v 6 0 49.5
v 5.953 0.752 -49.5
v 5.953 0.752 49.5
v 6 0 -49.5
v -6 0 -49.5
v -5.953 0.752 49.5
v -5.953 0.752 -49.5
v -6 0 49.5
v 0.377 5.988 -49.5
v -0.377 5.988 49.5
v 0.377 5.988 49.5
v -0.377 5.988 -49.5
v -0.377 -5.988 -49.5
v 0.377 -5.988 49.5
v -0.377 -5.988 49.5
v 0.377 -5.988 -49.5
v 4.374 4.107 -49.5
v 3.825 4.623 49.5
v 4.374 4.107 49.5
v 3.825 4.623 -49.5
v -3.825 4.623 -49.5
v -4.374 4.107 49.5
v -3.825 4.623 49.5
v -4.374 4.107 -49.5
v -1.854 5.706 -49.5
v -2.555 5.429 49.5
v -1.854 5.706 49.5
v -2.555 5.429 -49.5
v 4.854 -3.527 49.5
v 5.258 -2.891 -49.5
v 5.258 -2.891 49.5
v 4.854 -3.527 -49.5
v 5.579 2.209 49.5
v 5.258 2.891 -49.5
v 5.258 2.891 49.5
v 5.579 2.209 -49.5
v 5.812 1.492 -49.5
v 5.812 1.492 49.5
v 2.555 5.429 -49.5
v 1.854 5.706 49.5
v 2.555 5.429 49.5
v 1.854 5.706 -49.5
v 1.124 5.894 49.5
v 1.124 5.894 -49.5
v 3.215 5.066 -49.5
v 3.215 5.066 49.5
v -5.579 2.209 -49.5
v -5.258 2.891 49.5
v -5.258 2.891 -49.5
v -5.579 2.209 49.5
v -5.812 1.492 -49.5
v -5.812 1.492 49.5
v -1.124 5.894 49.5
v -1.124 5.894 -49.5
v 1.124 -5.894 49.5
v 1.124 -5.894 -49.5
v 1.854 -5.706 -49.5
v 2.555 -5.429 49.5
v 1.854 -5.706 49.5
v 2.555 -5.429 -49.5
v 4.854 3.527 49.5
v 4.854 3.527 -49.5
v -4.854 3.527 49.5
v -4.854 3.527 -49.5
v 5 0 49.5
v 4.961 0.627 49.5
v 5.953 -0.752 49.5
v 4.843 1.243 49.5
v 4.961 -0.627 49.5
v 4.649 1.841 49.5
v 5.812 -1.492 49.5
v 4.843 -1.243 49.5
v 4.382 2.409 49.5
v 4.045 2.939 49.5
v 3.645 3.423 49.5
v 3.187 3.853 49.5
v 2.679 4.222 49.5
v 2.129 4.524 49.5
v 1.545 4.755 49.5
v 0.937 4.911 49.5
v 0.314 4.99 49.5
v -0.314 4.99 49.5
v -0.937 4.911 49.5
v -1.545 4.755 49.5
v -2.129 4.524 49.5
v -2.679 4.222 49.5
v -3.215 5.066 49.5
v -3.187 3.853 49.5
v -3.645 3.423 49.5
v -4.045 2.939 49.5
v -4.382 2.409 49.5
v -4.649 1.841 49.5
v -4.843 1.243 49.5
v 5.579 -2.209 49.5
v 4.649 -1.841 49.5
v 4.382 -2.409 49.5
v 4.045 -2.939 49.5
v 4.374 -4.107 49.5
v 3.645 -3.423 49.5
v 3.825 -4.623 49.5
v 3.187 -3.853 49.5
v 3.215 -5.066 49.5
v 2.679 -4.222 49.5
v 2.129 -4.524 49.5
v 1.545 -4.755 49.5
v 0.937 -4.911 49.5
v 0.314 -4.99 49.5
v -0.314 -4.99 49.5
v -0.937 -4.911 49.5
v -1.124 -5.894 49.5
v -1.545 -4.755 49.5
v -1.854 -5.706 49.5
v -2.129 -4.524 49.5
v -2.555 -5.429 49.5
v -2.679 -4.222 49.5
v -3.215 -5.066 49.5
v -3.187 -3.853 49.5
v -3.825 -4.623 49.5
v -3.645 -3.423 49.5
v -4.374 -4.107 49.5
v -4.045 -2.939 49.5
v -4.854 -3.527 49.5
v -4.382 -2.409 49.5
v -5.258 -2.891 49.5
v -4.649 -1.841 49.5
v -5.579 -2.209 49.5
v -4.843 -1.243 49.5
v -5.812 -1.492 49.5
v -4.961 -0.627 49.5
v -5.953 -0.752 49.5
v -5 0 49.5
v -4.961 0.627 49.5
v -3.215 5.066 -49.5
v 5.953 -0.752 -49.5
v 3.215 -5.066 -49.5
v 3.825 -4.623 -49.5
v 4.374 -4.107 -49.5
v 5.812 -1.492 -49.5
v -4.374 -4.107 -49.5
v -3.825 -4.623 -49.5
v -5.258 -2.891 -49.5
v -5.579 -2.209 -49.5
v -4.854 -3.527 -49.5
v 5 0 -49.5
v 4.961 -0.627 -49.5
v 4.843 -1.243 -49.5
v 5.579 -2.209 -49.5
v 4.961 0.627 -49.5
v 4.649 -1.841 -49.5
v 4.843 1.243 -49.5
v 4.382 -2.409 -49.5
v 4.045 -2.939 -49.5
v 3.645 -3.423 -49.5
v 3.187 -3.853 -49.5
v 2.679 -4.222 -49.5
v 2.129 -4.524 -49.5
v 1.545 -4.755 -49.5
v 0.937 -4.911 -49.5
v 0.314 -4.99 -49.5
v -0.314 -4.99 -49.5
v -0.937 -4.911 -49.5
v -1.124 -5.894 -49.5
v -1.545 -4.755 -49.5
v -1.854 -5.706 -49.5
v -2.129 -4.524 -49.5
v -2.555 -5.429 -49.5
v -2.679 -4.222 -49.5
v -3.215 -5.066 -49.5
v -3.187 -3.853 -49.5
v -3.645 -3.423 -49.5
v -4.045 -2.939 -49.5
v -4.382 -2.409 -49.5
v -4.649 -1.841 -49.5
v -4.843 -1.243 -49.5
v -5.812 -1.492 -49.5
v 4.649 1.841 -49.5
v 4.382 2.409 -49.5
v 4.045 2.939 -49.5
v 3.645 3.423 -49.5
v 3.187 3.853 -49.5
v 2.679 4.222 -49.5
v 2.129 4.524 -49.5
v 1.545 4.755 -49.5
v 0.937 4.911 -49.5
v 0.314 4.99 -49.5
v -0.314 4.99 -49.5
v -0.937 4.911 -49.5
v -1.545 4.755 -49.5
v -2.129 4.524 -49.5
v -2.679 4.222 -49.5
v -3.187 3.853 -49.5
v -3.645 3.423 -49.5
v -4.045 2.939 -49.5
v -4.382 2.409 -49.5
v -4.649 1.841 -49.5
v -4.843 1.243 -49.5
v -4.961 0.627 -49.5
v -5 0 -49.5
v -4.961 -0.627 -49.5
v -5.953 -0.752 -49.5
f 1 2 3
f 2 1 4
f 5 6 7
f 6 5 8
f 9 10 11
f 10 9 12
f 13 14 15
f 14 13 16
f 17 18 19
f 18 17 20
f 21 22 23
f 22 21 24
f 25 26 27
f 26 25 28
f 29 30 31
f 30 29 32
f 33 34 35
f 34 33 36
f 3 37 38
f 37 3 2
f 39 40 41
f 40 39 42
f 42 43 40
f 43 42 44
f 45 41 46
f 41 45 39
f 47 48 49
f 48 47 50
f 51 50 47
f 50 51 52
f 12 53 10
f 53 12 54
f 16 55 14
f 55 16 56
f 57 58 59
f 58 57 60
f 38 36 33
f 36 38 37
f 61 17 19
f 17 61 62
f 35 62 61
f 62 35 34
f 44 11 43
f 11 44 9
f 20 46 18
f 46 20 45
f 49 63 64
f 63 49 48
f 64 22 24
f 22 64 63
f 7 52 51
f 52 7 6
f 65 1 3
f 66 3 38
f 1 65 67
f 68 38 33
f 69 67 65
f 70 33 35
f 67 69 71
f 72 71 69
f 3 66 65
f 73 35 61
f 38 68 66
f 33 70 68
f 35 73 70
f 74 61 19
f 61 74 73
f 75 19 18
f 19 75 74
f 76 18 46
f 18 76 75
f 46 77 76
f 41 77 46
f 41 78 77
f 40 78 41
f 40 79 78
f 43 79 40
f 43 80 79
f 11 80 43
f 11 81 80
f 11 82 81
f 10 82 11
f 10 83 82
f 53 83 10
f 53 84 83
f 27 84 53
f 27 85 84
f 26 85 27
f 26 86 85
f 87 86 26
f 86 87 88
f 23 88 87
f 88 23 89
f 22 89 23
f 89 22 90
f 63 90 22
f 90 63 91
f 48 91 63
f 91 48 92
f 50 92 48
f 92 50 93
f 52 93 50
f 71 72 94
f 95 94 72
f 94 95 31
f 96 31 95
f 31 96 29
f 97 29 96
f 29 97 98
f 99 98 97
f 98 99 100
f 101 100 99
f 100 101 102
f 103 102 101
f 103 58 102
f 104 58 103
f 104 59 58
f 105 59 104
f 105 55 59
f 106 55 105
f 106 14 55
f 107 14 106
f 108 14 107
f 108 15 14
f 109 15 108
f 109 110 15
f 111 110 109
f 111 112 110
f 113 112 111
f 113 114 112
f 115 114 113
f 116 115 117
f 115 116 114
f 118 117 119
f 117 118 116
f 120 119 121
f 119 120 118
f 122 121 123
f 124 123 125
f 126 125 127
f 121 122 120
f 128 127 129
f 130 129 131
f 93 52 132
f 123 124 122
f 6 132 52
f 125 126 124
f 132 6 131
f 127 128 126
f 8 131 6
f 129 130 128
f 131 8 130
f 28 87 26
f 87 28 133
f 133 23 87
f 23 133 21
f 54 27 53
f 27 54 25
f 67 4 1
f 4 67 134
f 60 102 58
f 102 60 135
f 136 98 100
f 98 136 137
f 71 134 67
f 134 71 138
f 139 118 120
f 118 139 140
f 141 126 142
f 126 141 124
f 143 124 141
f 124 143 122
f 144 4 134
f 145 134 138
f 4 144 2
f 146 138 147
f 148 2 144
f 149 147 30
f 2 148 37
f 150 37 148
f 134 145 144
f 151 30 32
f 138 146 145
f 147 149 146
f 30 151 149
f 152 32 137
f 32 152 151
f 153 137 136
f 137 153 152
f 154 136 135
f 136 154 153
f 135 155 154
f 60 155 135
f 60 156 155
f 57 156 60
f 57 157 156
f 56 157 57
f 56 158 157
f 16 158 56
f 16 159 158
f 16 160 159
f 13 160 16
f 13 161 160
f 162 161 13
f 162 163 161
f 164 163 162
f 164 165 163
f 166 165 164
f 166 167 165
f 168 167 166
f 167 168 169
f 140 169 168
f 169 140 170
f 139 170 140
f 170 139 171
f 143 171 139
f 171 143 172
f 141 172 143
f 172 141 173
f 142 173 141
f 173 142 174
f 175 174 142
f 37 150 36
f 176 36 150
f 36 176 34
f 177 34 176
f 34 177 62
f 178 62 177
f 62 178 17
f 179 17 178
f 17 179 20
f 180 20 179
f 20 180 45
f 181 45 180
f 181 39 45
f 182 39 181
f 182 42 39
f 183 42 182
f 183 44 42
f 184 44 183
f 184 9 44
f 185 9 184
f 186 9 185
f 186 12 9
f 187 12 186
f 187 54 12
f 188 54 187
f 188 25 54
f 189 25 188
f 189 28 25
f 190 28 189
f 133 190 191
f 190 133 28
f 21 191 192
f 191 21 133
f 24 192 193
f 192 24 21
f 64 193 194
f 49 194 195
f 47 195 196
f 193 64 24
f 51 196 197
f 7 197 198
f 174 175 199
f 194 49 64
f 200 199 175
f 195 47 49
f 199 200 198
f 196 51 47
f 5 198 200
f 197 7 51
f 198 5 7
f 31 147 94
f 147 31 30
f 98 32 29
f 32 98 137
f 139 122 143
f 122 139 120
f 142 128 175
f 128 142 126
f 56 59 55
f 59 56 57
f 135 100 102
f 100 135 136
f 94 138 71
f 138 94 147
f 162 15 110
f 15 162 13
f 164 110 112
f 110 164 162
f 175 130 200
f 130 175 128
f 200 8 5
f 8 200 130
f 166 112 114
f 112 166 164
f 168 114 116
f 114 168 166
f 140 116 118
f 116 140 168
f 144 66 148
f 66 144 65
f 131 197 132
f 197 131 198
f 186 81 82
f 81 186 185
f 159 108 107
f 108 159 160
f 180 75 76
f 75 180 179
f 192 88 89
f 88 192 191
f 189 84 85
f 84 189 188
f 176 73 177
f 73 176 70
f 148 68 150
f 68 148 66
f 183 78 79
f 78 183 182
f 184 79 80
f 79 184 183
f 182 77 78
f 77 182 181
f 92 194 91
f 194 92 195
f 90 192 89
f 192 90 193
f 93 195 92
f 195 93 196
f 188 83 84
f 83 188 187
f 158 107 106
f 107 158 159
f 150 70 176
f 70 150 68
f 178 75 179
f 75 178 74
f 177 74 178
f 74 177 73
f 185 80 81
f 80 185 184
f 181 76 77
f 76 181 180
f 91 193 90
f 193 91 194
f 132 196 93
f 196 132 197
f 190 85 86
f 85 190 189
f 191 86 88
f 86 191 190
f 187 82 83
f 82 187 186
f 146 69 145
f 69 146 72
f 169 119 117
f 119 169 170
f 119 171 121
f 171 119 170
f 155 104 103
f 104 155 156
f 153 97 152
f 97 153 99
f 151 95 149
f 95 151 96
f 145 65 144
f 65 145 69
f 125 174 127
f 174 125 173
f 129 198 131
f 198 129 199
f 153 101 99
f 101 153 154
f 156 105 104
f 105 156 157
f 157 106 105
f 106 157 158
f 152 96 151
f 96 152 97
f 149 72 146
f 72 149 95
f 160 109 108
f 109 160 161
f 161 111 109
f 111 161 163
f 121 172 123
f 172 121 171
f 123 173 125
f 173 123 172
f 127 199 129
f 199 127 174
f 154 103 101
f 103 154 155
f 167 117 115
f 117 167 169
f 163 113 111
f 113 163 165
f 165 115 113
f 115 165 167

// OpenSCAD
$fn = 50;


difference() {
	union() {
		translate(v = [0, 0, -49.5000000000]) {
			cylinder(h = 99, r = 6.0000000000);
		}
	}
	union() {
		translate(v = [0, 0, -100.0000000000]) {
			cylinder(h = 200, r = 5.0000000000);
		}
	}
}
